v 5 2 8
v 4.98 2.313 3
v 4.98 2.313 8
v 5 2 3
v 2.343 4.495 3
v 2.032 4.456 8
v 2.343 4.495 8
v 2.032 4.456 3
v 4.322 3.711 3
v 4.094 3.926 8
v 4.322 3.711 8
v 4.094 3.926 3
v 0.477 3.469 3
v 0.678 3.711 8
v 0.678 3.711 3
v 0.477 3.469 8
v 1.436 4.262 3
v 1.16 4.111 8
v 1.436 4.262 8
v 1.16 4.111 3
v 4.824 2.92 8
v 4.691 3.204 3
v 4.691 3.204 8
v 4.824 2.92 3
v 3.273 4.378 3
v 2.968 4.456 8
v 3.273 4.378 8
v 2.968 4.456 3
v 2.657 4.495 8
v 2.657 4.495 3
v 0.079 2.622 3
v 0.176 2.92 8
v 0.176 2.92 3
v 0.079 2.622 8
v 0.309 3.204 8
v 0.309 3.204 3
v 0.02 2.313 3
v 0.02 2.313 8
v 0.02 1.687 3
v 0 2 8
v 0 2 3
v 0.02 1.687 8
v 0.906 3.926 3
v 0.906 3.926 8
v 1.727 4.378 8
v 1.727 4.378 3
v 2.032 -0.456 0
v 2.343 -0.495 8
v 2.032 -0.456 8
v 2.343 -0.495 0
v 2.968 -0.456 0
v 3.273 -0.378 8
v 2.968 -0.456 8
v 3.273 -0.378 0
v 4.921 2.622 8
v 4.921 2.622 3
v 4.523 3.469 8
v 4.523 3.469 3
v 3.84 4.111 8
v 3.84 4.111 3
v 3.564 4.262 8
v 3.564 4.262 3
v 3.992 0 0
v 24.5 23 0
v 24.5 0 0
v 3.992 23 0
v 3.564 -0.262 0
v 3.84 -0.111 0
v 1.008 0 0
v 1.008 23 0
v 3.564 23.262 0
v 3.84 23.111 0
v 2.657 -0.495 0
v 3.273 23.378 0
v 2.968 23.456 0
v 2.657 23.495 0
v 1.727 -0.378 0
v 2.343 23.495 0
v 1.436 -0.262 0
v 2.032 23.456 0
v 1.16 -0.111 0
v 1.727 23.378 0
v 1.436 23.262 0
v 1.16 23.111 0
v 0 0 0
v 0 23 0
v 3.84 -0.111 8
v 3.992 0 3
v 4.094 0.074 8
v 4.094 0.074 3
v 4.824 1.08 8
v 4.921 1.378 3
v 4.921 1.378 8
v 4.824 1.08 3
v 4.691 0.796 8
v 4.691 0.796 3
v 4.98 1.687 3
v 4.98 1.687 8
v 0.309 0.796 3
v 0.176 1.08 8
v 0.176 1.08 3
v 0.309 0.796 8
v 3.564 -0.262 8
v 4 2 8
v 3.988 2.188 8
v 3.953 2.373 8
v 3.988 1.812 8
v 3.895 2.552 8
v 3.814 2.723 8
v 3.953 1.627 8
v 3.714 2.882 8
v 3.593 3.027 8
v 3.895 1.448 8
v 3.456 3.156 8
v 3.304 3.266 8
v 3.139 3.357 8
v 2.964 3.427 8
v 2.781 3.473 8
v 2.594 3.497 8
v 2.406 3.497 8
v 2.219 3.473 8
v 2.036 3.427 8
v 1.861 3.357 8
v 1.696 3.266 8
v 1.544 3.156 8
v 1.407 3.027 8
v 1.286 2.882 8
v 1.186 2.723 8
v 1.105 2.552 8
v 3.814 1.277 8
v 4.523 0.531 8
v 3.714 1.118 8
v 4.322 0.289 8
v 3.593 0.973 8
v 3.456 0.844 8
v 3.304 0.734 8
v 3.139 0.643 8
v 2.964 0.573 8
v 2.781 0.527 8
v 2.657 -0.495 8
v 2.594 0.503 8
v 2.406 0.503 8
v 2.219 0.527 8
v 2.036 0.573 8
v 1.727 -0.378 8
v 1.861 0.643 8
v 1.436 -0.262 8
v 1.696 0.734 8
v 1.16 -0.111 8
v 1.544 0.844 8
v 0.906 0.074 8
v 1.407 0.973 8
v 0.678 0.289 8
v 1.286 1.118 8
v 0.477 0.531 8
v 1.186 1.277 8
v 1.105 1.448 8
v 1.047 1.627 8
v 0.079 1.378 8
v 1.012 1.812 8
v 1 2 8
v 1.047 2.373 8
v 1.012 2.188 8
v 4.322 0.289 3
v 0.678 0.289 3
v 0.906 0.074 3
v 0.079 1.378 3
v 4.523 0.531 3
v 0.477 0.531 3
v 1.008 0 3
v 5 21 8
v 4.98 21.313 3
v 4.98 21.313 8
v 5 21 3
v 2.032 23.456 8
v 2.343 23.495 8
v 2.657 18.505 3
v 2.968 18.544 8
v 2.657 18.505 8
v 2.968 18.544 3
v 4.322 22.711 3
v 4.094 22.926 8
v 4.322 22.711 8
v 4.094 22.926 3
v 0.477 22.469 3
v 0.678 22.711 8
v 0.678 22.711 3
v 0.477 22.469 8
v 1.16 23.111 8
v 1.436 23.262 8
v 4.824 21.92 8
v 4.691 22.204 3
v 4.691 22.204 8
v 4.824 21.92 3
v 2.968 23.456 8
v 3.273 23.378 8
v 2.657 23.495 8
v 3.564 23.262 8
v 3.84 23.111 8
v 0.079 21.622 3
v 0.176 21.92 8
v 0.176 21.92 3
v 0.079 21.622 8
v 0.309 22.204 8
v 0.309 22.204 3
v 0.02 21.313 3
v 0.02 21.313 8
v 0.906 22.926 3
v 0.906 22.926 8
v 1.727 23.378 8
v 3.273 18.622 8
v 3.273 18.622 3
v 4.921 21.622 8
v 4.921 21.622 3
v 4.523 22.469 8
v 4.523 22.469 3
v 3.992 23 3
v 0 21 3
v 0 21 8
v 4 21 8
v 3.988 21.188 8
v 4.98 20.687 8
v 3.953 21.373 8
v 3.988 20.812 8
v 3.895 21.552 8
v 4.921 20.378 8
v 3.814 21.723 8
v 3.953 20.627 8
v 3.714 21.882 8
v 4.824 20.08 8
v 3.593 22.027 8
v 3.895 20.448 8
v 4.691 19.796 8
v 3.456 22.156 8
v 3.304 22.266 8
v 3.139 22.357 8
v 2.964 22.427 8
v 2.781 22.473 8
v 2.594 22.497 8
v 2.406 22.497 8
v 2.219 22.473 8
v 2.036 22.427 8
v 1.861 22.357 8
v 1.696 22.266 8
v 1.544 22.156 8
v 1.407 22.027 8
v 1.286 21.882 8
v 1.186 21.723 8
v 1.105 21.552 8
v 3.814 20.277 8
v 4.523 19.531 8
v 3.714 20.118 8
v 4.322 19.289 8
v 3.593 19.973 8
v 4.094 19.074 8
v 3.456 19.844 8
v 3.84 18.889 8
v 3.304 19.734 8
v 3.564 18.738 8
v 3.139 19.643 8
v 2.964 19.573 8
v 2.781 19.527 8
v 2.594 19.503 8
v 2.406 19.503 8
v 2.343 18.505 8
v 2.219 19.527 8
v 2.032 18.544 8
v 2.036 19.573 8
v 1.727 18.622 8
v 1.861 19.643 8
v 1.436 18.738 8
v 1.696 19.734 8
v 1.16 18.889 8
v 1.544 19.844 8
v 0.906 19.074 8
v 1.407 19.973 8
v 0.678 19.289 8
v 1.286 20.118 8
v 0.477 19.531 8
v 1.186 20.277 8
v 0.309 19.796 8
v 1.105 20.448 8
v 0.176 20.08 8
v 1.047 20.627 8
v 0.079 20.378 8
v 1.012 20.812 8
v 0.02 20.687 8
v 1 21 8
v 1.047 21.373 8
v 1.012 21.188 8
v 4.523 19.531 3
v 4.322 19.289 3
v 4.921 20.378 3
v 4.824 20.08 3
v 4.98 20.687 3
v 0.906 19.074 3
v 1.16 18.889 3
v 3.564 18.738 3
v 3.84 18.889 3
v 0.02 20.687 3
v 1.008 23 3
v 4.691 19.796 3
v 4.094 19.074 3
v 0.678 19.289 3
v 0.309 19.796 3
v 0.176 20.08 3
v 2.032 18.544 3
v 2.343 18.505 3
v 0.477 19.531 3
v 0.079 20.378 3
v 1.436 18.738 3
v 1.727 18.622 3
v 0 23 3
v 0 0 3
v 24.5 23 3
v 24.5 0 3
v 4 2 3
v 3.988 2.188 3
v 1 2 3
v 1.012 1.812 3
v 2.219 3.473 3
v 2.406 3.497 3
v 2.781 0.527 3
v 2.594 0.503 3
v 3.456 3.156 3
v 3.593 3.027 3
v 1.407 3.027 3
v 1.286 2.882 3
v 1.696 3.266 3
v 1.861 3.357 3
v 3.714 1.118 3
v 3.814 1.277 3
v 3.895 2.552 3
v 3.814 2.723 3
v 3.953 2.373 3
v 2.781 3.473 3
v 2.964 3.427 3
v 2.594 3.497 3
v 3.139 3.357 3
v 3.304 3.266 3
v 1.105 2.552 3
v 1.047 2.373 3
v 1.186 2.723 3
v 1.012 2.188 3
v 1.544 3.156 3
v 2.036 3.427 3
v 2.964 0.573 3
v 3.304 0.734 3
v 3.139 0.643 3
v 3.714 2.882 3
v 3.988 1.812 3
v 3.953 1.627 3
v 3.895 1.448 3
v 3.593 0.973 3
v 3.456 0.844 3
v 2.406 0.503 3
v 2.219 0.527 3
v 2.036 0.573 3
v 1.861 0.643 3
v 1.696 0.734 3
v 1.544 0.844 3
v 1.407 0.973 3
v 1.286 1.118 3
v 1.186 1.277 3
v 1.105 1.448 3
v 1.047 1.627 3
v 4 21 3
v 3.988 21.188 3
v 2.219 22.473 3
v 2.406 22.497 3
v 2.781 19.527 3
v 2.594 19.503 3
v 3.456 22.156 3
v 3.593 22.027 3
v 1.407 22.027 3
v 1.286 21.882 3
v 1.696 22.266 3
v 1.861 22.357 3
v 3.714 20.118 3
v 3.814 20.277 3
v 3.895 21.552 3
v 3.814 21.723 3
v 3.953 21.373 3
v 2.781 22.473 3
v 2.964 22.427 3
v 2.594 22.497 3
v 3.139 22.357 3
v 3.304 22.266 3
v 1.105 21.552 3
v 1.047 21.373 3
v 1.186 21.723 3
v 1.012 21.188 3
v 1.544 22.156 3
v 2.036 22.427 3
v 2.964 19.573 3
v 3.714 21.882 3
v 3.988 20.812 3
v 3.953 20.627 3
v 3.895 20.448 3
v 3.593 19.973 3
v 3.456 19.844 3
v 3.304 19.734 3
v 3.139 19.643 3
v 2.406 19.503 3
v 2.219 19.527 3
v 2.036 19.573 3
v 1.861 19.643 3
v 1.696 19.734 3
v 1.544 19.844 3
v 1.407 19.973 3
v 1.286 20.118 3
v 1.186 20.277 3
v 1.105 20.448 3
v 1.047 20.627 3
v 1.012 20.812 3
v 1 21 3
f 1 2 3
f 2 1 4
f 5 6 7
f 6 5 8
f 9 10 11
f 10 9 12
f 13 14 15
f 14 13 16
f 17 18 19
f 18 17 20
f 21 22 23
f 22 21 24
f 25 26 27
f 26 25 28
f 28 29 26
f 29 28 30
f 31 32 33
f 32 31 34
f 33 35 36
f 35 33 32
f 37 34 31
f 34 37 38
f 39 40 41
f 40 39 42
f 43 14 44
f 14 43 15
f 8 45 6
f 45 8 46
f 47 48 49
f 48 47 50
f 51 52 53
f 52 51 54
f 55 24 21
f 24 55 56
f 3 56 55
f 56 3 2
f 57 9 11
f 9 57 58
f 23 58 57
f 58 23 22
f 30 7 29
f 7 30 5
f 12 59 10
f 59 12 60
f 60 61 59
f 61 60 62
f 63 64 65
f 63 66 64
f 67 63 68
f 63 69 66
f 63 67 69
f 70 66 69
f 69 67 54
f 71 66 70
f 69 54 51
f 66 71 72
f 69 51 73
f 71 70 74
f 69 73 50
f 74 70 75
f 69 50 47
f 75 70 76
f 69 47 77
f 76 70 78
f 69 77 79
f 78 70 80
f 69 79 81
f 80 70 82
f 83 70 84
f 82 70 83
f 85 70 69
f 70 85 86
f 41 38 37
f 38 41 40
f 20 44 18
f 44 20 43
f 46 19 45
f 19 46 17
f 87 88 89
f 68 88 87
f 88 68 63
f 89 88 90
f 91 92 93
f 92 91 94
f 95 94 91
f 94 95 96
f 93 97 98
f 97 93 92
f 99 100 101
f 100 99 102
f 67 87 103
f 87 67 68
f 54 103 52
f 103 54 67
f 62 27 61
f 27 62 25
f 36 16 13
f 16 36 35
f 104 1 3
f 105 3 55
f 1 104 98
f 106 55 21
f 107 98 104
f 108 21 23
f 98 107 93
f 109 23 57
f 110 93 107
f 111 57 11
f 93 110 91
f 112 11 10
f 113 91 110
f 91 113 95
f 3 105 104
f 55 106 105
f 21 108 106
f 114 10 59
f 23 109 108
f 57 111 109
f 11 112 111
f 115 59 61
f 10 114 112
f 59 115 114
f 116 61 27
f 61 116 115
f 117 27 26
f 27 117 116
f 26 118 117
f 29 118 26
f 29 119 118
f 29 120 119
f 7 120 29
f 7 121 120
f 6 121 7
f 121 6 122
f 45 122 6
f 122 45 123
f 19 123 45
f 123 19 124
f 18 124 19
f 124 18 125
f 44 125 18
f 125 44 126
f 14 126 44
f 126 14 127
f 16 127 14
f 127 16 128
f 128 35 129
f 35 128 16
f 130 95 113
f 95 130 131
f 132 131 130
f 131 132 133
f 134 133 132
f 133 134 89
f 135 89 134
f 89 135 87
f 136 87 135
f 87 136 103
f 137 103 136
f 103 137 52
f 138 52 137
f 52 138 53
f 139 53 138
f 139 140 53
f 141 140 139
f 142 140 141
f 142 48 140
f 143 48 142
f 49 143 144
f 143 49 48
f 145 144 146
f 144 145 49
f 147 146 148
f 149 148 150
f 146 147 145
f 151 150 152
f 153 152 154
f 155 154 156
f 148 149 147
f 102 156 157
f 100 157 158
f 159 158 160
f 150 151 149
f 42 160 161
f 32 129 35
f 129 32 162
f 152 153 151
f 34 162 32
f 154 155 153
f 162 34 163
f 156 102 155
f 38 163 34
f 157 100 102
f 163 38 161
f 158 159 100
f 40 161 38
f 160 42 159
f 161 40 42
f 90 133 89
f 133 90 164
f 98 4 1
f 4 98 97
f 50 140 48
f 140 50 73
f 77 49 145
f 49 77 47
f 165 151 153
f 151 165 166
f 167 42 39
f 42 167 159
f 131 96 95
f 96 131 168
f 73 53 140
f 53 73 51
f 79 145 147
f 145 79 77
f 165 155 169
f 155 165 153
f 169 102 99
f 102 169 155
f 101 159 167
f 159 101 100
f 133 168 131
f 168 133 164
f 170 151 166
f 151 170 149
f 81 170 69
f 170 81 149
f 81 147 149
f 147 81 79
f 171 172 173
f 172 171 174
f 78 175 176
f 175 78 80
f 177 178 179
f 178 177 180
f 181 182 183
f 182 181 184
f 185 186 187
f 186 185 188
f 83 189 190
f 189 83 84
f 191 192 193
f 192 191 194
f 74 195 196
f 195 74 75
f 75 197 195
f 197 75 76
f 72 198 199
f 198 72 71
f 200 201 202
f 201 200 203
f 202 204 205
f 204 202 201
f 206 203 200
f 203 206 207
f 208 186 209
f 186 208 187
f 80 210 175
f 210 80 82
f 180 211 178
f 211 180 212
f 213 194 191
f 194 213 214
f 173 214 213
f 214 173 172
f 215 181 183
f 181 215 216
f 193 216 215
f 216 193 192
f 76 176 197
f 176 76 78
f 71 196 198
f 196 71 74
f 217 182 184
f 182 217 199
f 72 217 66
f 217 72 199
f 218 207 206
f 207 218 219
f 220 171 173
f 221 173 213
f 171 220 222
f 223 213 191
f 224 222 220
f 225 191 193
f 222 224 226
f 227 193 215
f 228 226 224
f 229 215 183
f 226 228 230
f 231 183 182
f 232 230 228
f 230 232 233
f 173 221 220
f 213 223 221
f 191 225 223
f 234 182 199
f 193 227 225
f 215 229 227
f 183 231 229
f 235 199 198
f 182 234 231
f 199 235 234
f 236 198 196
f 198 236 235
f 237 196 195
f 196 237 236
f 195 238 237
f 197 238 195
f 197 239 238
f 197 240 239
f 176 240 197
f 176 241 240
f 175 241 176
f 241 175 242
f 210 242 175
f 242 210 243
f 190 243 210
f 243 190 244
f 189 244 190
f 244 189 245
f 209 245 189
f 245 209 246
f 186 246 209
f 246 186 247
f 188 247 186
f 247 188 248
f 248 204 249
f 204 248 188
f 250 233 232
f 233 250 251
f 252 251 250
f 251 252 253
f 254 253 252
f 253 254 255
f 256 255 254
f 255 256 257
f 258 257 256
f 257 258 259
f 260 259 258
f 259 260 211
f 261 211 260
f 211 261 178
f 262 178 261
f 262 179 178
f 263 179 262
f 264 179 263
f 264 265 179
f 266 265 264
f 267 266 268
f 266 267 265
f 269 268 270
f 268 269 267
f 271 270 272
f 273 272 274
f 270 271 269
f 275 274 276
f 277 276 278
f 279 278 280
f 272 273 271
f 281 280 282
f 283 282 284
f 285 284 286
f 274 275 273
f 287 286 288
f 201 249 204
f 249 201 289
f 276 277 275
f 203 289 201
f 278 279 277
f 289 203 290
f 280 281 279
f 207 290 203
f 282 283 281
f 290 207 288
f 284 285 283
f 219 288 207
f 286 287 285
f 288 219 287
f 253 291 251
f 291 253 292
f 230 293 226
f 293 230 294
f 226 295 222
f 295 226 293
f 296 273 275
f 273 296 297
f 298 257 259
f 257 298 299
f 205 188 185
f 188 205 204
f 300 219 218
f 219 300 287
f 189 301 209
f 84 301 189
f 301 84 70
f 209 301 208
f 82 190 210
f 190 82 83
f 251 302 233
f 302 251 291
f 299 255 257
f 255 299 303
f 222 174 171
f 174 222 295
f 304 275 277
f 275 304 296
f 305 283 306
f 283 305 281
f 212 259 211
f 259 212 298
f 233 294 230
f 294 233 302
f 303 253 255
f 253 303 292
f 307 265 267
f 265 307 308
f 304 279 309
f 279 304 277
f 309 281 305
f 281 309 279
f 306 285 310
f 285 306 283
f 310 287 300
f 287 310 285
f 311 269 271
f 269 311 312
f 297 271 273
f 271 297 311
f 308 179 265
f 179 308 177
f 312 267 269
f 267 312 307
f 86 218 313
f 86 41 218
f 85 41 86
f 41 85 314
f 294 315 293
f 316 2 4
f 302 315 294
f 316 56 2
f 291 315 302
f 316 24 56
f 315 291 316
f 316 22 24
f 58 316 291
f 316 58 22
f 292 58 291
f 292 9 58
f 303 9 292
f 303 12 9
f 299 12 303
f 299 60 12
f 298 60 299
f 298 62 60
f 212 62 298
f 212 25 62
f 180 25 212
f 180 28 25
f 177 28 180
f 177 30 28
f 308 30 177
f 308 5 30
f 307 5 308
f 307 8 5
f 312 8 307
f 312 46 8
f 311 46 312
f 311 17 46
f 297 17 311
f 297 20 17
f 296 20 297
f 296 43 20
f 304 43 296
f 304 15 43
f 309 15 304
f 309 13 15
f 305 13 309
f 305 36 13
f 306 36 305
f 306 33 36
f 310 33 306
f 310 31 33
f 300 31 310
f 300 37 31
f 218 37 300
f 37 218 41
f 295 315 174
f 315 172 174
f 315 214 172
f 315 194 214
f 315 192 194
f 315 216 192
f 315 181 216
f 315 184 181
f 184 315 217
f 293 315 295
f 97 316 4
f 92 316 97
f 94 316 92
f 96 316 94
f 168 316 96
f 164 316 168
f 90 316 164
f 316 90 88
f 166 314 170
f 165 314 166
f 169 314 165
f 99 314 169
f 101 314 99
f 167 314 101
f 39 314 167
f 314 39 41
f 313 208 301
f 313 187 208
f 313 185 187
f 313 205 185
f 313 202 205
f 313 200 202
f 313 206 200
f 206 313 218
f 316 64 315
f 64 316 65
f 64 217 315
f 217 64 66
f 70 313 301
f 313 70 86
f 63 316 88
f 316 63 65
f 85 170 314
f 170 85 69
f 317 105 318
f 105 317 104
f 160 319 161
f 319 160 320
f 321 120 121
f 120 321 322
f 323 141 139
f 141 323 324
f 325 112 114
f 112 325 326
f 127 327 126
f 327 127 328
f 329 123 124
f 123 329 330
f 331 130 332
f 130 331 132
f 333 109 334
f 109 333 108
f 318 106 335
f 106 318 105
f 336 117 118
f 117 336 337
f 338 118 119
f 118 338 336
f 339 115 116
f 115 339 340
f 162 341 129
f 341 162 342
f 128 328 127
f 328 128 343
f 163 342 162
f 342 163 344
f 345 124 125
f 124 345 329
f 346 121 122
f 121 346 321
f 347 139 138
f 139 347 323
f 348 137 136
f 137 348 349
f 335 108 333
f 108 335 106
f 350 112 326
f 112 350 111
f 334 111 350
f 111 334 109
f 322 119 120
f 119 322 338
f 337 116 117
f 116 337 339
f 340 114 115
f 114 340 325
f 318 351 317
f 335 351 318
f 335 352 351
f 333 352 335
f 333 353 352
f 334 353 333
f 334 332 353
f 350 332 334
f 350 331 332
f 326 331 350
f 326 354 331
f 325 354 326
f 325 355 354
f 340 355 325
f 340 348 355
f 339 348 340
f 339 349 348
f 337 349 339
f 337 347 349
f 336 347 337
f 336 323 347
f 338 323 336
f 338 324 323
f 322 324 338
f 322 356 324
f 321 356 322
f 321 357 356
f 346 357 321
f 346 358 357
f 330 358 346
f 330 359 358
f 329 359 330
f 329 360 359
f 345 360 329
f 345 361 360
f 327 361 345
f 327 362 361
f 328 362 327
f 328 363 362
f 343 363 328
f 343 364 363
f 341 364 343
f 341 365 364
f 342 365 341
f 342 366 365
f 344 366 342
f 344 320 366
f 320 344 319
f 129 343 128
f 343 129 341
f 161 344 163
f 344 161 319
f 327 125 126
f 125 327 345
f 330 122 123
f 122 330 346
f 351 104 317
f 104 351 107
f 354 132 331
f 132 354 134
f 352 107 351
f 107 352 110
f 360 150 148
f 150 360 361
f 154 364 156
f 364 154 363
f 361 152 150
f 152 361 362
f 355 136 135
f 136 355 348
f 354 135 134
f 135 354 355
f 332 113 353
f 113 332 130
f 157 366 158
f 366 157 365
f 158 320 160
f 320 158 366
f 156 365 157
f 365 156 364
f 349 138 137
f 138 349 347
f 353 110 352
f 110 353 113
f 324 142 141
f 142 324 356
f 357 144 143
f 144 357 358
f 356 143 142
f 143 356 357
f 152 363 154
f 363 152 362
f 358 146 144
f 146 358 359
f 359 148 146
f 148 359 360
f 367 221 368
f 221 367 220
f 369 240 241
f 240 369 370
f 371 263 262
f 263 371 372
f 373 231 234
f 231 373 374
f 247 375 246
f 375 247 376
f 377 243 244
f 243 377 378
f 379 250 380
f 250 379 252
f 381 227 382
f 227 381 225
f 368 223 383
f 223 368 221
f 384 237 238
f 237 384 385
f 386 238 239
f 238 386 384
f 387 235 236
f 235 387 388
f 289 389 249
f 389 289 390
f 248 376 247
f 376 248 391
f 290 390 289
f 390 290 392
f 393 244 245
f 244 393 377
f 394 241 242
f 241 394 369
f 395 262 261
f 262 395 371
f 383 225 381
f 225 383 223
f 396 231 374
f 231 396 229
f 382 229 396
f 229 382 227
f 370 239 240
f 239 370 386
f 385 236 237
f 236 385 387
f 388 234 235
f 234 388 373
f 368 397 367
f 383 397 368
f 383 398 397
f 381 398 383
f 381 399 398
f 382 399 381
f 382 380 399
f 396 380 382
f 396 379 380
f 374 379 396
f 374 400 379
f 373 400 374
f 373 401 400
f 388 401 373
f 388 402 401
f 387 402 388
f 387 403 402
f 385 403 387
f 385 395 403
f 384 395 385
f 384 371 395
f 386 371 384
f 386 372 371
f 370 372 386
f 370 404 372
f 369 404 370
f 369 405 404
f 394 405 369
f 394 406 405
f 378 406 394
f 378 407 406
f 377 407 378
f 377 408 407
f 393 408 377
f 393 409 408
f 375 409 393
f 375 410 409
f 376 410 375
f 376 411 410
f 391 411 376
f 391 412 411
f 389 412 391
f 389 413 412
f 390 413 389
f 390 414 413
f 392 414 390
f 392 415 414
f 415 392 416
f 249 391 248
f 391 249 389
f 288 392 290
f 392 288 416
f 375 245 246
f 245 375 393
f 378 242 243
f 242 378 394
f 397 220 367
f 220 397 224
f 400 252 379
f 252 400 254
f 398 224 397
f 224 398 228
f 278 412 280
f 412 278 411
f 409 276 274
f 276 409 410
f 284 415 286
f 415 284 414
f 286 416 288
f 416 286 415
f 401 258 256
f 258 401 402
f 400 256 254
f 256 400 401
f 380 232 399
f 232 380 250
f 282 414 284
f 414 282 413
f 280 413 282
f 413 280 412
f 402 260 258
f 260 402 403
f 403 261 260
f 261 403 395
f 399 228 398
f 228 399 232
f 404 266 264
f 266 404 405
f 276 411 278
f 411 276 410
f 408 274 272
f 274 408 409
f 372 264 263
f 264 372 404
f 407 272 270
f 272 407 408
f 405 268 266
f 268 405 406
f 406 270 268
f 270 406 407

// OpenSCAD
module df_player_pro_mount(){
    
    $fn=50;
    
    LENGTH = 24.5;
    WIDTH = 23;
    DEPTH = 3;
    MOUNTING_POST_DIAMETER = 5;
    MOUNTING_HOLE_DIAMETER = 3;
    
    difference(){
        
        union(){
            cube([LENGTH,WIDTH,DEPTH]);
            
            color("green"){
                translate([MOUNTING_POST_DIAMETER/2,(WIDTH-19)/2,0]){
                    cylinder(r=MOUNTING_POST_DIAMETER/2,h=DEPTH+5);
                }
                
                translate([MOUNTING_POST_DIAMETER/2,WIDTH-((WIDTH-19)/2),0]){
                    cylinder(r=MOUNTING_POST_DIAMETER/2,h=DEPTH+5);
                }
            }
        }
        
        // mounting holes
        translate([MOUNTING_POST_DIAMETER/2,(WIDTH-19)/2,DEPTH]){
            cylinder(r=MOUNTING_HOLE_DIAMETER/2,h=DEPTH+2);
        }
        
        translate([MOUNTING_POST_DIAMETER/2,WIDTH-((WIDTH-19)/2),DEPTH]){
            cylinder(r=MOUNTING_HOLE_DIAMETER/2,h=DEPTH+2);
        }
    }
}

df_player_pro_mount();
